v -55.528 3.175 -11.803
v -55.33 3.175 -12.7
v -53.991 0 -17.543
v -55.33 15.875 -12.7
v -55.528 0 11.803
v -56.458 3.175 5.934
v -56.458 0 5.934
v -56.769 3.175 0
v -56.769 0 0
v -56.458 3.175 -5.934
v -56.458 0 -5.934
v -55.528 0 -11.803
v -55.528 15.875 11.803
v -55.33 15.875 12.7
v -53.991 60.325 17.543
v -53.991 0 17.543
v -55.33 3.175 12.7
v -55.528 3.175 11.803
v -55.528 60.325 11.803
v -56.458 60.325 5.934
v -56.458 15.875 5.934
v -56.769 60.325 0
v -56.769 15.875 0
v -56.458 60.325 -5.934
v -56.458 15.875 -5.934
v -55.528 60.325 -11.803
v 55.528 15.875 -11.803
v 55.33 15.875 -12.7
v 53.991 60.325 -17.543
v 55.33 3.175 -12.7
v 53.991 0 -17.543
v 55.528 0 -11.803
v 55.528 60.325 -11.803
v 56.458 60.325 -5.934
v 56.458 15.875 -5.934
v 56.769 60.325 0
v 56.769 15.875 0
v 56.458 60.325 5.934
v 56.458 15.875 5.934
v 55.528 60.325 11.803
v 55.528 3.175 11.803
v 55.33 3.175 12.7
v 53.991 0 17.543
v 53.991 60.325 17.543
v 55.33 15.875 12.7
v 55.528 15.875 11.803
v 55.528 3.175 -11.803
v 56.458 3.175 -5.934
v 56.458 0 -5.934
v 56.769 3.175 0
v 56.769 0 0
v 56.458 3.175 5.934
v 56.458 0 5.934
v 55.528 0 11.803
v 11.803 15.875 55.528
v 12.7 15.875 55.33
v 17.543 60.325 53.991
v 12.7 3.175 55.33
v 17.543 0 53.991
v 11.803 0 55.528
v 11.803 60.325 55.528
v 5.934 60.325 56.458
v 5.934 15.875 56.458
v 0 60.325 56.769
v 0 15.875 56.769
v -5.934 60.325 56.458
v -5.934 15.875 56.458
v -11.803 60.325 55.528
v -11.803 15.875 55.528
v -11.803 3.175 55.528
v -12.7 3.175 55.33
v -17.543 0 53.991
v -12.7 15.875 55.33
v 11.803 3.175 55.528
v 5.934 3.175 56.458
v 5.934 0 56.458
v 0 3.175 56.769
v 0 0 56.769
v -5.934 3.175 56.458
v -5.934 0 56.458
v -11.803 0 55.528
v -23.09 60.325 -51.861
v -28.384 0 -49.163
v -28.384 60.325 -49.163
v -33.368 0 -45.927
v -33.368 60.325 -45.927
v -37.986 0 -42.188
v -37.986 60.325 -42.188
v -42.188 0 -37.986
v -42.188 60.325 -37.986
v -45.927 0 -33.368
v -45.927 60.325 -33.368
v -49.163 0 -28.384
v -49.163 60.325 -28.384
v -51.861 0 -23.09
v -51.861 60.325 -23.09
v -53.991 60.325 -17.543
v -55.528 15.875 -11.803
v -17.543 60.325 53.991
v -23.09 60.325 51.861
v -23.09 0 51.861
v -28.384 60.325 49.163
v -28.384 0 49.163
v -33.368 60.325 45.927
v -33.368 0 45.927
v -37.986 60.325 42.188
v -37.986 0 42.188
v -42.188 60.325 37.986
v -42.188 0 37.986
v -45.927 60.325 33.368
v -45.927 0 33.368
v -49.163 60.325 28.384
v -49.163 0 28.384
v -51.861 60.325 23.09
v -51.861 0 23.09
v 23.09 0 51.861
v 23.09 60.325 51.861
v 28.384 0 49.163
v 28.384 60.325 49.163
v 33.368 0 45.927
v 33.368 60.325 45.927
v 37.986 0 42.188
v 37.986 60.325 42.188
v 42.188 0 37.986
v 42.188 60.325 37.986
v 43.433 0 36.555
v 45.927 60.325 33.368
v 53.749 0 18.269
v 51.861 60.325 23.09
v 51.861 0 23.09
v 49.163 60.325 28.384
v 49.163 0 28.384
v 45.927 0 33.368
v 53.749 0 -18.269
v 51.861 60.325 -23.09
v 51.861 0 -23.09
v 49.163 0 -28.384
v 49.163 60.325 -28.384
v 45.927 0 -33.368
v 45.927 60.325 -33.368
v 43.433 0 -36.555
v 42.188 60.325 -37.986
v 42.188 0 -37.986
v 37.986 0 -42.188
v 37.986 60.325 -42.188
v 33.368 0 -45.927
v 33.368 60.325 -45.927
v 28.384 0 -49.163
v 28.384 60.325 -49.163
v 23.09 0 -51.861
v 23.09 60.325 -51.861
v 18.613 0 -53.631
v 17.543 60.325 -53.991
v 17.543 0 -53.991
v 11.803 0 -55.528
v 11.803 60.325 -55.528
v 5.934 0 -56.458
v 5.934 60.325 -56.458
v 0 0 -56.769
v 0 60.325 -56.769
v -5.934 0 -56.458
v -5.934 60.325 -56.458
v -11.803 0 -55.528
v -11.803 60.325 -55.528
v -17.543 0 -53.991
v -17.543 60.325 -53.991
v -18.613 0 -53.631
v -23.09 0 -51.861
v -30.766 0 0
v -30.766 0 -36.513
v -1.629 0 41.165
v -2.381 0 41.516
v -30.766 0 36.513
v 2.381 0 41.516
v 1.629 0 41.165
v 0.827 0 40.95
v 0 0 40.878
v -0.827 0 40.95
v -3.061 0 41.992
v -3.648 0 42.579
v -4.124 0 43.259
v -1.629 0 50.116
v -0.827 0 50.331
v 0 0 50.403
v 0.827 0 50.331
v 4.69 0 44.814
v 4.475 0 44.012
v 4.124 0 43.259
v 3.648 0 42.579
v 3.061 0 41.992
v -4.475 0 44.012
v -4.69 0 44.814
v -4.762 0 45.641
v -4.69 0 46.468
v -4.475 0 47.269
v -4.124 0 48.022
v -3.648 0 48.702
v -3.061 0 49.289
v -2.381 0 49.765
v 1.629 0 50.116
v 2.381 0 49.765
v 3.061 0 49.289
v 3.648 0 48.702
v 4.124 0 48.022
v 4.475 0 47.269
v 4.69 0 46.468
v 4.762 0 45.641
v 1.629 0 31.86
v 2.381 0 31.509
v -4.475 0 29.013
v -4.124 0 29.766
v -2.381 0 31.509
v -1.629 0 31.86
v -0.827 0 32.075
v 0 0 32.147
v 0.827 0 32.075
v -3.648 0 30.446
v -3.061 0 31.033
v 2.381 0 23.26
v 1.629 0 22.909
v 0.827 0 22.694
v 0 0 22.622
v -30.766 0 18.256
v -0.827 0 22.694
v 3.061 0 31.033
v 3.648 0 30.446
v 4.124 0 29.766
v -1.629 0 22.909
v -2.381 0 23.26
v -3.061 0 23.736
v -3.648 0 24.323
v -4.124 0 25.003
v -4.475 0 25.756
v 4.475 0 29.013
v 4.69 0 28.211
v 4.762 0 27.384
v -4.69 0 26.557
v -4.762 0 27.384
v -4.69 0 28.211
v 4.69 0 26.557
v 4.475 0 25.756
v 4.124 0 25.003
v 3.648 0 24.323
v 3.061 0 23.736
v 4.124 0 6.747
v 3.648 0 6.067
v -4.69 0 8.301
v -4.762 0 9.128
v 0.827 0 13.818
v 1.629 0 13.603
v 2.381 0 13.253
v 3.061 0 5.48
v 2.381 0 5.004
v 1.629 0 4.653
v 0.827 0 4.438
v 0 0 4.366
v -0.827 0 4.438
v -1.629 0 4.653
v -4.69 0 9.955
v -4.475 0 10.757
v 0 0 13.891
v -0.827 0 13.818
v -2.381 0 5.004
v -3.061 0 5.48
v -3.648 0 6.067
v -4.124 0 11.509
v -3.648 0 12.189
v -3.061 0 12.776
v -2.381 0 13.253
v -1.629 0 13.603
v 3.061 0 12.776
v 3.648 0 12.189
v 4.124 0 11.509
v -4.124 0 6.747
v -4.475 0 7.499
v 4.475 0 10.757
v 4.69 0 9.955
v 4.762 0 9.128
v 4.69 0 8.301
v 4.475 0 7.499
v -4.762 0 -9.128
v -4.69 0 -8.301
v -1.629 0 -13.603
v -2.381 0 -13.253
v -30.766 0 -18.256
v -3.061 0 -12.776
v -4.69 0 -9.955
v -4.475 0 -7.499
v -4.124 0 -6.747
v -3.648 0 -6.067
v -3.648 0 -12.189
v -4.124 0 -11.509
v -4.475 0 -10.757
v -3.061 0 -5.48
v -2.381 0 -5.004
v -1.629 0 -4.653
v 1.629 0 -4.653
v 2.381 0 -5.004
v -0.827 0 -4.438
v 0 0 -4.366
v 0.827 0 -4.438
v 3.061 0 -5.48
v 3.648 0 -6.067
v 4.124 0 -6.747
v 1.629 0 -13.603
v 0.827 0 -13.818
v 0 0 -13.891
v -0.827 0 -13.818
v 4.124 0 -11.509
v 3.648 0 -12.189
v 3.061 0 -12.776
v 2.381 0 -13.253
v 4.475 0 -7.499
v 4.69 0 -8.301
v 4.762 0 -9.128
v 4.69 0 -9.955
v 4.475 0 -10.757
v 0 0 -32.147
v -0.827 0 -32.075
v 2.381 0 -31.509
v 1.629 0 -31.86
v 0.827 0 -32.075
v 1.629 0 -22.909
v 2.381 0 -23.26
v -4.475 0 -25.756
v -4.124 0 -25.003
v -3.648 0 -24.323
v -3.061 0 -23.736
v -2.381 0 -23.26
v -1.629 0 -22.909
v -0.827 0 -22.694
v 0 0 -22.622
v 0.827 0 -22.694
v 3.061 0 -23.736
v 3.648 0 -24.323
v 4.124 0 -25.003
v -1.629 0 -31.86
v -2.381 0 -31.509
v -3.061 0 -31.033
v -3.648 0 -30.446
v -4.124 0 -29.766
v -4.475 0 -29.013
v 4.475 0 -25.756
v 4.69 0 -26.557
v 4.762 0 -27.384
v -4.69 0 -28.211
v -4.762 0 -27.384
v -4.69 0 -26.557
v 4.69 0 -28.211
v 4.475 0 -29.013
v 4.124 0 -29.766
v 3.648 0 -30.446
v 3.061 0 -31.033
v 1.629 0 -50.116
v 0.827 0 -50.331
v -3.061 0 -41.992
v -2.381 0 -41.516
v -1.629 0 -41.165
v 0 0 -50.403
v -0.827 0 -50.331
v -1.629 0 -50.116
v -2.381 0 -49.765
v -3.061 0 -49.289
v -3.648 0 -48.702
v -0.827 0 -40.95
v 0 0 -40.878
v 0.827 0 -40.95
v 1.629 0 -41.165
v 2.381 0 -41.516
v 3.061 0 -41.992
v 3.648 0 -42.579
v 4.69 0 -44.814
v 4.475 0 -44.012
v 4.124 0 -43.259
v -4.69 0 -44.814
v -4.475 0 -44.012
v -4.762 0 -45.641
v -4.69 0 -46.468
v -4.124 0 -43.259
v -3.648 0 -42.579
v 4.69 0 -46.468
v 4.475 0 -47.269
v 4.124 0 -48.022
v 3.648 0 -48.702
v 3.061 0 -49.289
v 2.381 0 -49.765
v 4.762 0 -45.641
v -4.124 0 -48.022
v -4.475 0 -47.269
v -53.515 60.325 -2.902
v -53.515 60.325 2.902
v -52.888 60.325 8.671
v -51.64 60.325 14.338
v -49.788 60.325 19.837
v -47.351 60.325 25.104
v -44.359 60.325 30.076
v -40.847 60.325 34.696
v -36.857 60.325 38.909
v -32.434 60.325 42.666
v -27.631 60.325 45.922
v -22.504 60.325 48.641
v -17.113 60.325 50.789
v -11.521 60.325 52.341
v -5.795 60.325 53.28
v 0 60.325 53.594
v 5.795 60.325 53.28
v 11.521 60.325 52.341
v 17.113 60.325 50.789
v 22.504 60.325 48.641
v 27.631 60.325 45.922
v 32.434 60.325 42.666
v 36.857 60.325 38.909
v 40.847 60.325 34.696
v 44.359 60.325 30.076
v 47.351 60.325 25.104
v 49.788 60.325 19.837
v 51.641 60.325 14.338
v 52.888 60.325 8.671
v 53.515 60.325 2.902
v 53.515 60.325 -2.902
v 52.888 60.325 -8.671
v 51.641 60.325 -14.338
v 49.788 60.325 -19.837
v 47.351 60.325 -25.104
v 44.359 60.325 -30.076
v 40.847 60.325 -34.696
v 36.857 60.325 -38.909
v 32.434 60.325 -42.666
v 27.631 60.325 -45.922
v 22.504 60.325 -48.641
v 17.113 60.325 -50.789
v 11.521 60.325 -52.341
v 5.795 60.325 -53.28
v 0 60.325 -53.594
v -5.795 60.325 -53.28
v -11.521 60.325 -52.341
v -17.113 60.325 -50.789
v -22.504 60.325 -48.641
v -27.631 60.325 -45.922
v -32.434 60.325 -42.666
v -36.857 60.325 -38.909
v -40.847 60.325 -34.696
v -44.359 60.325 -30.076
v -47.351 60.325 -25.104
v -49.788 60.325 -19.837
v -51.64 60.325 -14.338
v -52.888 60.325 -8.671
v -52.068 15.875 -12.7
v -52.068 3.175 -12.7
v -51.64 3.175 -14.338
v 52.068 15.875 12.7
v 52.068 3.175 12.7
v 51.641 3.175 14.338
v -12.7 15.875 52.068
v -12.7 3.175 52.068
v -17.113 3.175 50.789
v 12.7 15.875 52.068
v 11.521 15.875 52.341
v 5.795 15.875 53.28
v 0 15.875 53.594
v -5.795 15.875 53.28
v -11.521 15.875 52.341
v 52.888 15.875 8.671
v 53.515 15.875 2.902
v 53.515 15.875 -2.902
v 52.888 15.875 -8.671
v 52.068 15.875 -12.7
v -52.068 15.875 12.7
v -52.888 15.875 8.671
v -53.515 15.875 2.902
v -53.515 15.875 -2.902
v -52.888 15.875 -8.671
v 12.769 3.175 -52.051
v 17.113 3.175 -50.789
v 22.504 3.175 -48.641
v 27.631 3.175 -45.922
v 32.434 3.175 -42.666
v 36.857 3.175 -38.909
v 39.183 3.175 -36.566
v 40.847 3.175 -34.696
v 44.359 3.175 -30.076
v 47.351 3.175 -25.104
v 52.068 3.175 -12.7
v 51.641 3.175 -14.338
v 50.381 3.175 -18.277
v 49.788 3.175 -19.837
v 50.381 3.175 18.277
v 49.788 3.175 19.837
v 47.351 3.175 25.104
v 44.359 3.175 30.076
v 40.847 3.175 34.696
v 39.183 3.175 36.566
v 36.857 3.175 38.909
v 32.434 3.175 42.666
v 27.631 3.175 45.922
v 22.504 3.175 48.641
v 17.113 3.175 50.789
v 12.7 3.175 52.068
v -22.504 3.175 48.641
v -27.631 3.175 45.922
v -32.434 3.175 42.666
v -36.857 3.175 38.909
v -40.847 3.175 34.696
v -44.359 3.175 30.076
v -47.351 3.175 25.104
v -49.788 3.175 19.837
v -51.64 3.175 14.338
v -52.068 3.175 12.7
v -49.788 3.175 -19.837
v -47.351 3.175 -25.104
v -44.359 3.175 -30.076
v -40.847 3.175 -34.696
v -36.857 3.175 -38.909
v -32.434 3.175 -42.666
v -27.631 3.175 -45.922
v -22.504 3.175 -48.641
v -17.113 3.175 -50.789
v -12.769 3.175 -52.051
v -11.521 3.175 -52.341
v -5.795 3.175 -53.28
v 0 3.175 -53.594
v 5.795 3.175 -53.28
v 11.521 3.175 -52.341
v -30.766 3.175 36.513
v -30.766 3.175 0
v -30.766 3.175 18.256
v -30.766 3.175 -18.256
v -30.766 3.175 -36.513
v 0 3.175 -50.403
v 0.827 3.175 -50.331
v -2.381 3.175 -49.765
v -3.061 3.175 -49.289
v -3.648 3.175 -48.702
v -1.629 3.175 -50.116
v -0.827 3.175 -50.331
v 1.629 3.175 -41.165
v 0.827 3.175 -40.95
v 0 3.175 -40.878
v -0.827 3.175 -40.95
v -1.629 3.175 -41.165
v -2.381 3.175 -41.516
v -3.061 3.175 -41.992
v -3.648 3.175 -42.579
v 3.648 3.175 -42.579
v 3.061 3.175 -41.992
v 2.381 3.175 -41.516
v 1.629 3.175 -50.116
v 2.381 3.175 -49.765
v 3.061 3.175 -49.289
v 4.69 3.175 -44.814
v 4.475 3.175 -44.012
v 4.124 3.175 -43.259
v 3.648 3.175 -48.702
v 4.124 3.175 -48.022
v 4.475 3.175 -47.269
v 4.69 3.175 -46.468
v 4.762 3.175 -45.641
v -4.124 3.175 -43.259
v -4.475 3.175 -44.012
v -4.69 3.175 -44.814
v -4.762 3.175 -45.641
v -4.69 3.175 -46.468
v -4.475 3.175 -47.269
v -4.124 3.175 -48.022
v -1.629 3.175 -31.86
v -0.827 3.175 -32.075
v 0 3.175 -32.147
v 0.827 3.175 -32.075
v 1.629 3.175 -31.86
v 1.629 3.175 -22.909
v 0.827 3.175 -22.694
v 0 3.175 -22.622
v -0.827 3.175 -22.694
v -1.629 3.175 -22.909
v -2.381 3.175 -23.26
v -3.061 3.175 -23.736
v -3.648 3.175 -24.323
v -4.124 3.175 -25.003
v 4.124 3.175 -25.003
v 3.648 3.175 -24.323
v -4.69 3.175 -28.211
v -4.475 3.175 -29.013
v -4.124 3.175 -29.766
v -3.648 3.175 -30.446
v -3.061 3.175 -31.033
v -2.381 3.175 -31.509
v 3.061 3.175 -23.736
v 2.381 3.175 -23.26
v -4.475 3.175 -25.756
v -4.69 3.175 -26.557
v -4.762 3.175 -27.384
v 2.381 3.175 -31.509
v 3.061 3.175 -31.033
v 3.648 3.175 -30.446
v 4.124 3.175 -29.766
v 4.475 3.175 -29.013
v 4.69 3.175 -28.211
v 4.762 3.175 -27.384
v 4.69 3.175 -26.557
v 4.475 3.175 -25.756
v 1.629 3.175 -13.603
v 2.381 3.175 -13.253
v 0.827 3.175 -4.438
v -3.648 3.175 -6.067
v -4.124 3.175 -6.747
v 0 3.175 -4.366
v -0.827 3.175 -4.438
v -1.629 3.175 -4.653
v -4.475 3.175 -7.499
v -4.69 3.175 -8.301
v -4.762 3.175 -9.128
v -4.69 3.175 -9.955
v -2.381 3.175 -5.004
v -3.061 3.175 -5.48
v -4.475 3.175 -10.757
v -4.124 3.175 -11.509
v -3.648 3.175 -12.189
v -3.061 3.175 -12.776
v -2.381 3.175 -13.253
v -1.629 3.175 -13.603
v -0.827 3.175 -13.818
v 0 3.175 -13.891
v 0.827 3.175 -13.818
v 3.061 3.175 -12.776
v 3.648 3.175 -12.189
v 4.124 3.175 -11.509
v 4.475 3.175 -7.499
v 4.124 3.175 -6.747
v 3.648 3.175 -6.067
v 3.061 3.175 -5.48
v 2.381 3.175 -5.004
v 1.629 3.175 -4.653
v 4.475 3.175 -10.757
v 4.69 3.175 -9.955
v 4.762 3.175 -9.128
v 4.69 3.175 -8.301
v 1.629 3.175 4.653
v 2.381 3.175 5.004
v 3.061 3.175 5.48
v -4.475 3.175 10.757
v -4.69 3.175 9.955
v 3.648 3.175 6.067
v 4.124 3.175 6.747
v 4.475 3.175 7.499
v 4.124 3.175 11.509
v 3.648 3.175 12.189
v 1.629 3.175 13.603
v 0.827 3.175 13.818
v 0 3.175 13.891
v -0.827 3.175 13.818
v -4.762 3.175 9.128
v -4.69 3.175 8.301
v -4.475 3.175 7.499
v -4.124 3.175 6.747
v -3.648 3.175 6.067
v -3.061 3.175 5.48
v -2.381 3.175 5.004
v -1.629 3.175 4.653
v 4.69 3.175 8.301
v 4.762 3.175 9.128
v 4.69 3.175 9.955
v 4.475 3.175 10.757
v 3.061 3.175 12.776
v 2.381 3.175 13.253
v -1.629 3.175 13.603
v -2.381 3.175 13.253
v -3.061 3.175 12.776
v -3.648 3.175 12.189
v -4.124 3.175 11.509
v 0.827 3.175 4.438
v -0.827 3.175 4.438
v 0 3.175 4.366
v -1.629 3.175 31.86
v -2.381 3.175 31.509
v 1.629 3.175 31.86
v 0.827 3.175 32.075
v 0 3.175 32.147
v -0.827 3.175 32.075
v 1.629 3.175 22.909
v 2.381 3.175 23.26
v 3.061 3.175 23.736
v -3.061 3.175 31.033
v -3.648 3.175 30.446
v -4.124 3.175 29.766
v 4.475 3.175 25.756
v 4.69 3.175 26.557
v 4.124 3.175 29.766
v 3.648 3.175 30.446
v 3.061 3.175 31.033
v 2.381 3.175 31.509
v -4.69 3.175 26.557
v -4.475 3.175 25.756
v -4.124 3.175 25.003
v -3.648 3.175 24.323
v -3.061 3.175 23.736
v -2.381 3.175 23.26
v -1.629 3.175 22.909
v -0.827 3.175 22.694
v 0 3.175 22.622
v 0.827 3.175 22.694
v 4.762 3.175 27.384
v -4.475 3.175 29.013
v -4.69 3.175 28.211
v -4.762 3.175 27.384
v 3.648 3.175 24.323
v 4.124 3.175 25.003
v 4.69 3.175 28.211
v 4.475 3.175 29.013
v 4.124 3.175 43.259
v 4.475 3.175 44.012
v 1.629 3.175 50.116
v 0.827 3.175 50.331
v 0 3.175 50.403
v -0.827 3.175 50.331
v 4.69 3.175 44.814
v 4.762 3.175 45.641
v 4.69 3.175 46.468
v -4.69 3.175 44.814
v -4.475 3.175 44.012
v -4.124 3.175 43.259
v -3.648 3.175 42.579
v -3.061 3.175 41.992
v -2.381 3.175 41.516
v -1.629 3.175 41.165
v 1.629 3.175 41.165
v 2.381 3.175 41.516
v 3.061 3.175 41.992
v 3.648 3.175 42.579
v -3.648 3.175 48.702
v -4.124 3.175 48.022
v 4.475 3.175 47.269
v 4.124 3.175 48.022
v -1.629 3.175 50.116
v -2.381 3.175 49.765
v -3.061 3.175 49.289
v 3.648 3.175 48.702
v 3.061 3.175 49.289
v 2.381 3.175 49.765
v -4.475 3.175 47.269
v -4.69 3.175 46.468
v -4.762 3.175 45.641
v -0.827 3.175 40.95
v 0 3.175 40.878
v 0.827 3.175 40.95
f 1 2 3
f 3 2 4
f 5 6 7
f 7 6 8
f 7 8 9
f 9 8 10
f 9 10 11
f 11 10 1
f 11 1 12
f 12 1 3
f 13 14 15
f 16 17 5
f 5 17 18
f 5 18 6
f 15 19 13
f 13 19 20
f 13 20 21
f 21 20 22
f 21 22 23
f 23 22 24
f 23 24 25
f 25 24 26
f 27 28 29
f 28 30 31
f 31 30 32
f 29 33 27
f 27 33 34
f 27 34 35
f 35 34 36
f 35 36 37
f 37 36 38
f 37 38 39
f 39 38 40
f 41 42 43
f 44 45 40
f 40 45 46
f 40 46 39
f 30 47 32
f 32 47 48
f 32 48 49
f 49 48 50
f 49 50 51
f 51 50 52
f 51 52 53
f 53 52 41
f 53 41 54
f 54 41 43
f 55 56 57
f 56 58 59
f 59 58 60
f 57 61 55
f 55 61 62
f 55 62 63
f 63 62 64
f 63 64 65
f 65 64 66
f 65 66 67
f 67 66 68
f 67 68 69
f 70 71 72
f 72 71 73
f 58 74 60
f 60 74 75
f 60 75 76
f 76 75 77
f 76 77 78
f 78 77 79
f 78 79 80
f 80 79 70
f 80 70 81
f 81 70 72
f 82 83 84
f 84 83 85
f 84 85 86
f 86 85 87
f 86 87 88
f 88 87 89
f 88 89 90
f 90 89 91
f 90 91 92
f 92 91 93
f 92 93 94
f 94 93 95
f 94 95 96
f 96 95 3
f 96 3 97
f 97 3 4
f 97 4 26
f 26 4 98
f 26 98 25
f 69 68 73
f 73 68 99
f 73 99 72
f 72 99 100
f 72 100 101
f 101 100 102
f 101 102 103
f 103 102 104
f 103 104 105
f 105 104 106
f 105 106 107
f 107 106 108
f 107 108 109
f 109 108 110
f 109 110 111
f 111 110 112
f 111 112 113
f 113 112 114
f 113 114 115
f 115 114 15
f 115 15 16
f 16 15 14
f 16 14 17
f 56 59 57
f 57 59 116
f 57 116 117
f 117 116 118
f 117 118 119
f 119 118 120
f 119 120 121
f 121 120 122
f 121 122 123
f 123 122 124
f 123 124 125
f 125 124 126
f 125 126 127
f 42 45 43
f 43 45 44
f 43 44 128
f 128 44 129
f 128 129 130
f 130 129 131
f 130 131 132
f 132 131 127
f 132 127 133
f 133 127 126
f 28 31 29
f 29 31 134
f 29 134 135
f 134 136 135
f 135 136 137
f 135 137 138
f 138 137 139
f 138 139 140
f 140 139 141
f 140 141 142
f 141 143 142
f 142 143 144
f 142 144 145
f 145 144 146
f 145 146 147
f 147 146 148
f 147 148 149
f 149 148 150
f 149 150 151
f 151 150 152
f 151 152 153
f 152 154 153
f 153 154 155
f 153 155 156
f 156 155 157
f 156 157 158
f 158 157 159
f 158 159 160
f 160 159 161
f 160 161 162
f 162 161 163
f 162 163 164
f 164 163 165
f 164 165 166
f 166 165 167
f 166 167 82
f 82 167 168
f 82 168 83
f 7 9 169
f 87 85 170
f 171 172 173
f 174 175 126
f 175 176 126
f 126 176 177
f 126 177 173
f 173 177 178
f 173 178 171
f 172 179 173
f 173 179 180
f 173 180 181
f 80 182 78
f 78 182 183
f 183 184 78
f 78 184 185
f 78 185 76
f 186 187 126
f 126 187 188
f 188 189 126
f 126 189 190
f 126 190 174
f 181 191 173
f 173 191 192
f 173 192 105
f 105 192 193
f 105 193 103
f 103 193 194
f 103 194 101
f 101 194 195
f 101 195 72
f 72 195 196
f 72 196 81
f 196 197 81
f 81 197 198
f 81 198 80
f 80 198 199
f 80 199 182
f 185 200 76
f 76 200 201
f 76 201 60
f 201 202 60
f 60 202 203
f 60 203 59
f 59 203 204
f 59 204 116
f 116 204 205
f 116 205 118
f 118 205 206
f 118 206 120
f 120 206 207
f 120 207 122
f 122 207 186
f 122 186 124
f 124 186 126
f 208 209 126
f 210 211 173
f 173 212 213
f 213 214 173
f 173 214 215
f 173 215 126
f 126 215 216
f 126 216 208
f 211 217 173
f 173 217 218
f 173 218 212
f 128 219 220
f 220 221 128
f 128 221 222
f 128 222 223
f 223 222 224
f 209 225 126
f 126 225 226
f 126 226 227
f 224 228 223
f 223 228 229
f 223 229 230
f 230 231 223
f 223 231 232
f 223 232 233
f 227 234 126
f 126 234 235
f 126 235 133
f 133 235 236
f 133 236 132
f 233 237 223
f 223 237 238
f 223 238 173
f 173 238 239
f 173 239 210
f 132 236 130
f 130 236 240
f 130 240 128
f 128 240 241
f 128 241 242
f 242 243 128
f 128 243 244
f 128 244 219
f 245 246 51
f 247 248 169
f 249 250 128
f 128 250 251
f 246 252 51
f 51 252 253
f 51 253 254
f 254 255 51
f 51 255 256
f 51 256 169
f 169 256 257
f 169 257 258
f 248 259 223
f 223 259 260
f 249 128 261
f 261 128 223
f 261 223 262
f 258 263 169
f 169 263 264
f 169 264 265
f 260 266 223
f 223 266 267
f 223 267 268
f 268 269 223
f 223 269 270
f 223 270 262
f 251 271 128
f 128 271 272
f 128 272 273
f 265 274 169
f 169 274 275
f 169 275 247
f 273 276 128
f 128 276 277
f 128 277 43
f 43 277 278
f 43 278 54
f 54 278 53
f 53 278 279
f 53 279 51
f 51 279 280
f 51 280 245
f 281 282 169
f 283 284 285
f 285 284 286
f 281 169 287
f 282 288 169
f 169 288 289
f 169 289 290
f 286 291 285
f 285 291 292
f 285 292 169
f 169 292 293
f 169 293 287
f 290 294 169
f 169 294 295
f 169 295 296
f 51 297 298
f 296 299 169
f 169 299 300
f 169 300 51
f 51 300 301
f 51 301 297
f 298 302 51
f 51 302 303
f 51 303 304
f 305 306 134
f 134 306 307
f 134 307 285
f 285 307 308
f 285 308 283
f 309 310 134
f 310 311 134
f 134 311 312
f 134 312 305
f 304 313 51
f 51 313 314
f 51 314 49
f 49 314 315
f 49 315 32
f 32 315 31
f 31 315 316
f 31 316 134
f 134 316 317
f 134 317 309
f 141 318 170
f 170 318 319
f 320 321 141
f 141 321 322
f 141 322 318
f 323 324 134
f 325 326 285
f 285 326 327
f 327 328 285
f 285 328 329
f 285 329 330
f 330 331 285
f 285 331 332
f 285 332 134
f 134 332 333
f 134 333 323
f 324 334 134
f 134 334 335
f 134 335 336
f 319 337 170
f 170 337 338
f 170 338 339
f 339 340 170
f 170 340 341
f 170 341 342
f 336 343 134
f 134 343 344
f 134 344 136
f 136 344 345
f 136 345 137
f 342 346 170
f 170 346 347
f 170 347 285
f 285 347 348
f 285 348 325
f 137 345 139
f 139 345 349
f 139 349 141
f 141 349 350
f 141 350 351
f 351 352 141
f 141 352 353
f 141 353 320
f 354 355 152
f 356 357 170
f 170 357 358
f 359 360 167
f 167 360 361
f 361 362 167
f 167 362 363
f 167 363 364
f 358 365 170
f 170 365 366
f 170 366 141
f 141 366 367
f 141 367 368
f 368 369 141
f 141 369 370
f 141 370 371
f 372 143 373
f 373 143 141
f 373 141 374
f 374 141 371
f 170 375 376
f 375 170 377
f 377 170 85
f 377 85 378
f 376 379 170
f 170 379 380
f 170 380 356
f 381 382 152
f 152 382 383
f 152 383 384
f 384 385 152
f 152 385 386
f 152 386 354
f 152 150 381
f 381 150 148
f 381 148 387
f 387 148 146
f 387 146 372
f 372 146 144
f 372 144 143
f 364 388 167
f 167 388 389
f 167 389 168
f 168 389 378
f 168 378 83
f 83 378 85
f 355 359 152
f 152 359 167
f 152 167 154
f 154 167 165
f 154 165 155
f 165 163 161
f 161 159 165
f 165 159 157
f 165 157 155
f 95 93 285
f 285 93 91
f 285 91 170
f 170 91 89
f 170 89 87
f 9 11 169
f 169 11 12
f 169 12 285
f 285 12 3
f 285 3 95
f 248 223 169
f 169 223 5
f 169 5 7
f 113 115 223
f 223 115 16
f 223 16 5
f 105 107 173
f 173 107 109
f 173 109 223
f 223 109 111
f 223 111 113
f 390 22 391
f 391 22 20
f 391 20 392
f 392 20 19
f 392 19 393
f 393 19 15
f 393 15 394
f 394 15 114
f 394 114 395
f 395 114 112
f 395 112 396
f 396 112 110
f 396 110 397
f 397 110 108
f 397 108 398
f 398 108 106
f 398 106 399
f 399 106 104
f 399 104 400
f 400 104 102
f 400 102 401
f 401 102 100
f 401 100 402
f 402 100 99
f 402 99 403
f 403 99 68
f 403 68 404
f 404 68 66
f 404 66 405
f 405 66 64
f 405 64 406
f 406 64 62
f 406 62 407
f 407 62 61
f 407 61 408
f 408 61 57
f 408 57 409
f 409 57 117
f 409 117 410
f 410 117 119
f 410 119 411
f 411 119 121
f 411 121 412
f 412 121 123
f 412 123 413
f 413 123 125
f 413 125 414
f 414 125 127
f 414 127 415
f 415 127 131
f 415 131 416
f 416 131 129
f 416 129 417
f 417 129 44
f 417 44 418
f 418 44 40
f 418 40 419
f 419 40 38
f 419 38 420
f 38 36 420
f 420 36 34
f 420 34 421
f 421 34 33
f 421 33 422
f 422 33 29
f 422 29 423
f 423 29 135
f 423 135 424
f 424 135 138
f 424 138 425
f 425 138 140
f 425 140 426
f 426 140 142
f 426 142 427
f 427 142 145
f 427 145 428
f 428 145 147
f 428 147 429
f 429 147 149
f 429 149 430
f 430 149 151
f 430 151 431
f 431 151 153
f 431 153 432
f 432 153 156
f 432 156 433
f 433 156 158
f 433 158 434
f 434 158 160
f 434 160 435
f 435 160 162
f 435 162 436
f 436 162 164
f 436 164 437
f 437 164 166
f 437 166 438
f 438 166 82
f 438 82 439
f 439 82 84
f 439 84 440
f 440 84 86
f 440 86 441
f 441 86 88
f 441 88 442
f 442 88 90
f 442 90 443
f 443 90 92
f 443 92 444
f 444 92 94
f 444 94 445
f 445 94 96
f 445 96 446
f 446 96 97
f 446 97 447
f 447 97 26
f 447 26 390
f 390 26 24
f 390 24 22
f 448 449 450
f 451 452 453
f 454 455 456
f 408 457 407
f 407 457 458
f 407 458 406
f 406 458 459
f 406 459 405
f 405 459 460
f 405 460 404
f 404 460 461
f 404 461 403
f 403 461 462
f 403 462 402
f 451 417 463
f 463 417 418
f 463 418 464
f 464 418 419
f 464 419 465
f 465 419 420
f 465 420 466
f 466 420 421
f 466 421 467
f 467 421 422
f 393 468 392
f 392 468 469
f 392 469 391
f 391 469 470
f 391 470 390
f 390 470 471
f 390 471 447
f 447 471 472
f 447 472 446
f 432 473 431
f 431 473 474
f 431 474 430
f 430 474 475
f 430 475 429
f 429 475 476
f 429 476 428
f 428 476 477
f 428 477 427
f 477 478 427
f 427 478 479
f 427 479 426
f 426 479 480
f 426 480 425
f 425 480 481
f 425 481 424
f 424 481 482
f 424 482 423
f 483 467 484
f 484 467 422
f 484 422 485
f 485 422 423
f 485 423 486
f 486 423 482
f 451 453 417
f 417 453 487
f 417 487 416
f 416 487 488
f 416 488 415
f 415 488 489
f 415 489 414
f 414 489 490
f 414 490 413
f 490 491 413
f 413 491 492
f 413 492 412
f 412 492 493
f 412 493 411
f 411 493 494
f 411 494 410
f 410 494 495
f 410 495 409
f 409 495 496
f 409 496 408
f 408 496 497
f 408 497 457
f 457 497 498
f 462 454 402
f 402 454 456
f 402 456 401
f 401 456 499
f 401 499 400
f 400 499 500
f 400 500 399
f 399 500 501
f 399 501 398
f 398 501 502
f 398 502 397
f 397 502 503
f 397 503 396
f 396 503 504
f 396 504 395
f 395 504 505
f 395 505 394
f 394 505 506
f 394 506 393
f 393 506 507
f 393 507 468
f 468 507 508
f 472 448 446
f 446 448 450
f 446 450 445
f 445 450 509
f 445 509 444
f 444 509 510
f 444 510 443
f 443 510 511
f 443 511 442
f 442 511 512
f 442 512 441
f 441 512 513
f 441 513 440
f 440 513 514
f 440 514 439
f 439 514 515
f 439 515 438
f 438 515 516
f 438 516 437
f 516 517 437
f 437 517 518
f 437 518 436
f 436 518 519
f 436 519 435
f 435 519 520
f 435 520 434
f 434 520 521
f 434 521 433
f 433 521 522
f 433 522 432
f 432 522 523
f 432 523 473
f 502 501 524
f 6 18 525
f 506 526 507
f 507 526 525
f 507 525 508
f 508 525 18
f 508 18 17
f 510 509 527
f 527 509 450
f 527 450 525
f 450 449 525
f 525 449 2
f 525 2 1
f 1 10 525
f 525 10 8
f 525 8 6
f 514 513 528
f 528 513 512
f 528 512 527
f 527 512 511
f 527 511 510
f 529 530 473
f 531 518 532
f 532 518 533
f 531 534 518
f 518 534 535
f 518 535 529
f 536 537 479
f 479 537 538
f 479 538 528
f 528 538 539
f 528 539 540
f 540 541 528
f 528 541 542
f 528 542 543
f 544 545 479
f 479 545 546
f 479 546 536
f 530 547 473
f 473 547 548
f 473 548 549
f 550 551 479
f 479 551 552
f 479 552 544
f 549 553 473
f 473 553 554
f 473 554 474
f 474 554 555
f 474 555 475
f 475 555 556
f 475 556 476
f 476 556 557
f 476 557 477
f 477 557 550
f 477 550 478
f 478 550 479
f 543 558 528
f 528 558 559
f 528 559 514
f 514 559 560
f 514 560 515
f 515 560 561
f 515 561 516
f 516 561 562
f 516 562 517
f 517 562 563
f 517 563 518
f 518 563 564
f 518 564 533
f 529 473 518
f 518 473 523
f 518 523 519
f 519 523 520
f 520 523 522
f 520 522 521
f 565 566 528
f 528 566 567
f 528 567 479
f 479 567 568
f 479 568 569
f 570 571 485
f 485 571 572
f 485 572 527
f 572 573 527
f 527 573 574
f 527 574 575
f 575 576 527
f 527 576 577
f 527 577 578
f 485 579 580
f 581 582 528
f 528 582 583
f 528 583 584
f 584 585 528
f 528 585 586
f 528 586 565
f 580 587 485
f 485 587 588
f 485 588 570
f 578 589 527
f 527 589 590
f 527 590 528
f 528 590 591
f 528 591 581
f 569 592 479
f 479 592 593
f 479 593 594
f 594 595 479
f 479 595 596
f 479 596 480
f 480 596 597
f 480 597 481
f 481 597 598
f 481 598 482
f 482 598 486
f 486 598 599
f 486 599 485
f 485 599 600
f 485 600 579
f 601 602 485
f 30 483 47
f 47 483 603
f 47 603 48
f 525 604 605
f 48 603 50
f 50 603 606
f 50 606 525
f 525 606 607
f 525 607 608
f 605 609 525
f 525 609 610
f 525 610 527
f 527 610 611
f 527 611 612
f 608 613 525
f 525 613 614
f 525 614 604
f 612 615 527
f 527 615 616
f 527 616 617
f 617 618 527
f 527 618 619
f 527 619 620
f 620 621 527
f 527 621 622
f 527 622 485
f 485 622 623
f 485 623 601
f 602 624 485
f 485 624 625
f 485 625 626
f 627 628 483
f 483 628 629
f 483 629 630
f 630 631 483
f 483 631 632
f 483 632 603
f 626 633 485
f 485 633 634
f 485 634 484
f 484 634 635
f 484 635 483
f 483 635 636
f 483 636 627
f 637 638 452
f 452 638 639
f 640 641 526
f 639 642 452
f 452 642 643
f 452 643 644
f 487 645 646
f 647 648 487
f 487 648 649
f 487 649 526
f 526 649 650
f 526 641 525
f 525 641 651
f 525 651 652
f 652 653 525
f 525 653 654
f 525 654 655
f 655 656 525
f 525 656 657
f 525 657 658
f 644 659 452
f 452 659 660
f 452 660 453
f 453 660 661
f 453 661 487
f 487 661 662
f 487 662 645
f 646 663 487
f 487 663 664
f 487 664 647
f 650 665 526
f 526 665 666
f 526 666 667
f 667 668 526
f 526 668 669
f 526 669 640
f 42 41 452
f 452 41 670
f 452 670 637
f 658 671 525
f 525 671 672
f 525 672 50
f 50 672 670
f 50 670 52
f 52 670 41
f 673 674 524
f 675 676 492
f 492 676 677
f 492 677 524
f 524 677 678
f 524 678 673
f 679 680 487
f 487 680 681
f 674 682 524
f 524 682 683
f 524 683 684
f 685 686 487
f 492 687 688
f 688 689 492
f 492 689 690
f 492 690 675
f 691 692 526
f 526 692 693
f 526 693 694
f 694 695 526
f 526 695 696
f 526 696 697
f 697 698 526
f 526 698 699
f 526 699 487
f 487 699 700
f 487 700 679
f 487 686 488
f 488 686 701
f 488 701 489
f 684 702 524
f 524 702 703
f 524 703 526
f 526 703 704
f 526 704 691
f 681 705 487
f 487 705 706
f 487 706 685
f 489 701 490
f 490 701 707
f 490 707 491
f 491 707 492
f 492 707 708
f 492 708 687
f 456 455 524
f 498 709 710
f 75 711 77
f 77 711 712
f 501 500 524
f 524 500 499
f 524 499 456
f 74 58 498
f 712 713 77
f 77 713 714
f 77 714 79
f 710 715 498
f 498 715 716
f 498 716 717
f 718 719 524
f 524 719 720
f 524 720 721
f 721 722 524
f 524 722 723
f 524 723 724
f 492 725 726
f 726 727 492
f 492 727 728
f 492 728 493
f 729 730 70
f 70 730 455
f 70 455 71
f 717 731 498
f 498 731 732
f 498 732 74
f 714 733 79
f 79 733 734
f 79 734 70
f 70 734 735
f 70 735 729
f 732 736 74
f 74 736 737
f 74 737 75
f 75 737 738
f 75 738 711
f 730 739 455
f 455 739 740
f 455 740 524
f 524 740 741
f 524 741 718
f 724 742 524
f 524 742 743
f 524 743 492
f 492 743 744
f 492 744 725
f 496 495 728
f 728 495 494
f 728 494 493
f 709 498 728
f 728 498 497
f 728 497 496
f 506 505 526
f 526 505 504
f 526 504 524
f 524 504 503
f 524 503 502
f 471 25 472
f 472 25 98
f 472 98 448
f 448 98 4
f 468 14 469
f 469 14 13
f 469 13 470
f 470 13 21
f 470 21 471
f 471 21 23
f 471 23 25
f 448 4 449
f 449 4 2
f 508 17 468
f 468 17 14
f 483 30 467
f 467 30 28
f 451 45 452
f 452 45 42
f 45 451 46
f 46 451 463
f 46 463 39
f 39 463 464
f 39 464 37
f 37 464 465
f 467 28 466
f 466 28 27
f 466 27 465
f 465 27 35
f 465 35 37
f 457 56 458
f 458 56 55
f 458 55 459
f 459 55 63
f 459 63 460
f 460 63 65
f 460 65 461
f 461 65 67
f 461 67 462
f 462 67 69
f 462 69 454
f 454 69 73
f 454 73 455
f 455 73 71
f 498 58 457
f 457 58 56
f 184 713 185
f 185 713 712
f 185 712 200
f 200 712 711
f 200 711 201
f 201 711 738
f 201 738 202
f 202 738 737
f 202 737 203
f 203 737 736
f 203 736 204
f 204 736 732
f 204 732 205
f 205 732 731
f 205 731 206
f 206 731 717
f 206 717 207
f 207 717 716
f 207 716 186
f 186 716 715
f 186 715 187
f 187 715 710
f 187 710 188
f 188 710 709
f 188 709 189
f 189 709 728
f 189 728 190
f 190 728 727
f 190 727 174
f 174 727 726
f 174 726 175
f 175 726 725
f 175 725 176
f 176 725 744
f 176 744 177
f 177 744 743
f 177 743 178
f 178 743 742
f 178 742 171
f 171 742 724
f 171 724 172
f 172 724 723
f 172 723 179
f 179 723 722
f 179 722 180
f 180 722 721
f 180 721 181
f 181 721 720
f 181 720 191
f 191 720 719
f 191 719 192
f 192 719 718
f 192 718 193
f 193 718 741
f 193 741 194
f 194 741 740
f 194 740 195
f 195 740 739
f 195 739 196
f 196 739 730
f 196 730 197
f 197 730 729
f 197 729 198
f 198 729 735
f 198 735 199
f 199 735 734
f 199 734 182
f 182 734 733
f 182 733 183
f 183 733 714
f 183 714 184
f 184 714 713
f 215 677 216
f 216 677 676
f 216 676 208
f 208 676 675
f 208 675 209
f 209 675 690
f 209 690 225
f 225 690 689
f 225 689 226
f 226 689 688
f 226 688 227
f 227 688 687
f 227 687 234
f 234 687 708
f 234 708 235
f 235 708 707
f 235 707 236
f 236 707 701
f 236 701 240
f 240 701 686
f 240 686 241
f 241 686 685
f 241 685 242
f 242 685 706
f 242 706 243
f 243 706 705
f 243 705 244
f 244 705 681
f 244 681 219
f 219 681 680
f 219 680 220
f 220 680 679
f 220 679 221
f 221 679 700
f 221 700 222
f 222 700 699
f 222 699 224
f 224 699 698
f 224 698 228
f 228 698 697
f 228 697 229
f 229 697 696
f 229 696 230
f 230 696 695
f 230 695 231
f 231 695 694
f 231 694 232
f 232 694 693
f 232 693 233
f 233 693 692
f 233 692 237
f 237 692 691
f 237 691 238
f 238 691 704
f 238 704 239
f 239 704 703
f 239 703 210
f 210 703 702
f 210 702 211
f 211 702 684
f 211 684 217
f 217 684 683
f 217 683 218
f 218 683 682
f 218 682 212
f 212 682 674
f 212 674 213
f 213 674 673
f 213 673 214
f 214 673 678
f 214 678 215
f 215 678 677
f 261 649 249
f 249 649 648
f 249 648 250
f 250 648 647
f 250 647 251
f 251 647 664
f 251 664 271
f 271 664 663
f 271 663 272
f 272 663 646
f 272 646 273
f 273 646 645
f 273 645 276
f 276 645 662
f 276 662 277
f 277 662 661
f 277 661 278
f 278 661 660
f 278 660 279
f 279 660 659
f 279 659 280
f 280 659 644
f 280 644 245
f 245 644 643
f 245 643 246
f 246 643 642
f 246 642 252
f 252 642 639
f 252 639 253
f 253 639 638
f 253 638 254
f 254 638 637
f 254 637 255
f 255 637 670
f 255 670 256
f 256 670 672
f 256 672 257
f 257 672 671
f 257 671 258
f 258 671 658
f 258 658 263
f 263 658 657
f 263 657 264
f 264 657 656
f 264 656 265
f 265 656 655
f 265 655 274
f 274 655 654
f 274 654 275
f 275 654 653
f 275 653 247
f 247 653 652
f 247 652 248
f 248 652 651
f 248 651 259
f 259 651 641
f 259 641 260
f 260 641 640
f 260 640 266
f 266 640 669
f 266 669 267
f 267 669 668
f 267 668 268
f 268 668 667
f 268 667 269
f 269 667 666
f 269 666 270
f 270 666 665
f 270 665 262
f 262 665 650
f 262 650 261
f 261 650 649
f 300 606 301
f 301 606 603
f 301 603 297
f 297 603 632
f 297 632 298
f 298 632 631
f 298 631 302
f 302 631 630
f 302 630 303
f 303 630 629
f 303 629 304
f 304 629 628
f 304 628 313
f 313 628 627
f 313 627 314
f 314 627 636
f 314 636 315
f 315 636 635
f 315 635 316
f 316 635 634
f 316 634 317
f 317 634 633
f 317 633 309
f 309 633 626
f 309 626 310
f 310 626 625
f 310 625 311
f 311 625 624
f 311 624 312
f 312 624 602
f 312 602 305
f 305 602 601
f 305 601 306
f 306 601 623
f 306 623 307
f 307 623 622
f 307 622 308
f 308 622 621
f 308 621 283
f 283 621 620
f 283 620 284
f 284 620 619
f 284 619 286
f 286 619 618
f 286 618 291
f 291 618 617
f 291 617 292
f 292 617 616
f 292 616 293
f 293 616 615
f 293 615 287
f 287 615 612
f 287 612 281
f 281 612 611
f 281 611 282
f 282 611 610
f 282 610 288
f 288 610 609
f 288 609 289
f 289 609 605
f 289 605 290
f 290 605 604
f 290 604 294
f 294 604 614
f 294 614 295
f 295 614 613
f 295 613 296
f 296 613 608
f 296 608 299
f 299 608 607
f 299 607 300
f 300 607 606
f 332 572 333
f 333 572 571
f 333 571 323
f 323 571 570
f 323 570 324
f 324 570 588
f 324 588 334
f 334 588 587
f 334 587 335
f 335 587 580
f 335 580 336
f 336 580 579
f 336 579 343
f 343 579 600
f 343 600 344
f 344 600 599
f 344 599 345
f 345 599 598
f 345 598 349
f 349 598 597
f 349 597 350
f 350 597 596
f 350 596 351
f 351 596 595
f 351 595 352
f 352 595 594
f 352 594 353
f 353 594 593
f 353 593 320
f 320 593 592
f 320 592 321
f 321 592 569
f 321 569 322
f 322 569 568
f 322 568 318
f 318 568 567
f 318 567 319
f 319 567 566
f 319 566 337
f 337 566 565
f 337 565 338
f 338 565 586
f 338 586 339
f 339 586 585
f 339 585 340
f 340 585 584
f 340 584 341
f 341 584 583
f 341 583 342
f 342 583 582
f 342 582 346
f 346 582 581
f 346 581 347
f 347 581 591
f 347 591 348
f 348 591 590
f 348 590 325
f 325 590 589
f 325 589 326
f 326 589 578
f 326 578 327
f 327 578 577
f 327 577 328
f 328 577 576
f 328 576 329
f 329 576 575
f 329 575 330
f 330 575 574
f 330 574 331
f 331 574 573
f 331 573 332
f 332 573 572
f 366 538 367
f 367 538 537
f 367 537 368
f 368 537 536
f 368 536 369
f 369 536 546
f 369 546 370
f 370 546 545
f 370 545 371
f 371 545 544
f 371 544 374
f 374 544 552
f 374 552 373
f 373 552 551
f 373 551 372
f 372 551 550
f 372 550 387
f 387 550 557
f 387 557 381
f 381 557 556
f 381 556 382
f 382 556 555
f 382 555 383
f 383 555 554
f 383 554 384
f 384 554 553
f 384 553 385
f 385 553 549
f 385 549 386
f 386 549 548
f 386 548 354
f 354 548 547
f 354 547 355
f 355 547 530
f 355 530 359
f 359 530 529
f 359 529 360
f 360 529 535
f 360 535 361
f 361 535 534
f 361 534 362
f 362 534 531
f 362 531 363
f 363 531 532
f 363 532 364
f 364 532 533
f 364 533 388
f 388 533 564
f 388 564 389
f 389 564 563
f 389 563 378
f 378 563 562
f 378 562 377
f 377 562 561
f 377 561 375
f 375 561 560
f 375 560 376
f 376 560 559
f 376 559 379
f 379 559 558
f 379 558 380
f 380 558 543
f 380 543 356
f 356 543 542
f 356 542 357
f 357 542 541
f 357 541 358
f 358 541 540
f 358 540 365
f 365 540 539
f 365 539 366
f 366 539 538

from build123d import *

# Parameters (mm, degrees)
SKETCH1_R           = 56.769
BOSS_EXTRUDE1_DEPTH = 3.175
SKETCH2_R           = 56.769
SKETCH2_R_2         = 53.594
BOSS_EXTRUDE2_DEPTH = 57.15
SKETCH3_W           = 25.4
SKETCH3_H           = 12.7
CUT_EXTRUDE1_DEPTH  = 101.421832024
CIRPATTERN1_COUNT   = 3
CIRPATTERN1_ANGLE   = 180
SKETCH4_R           = 4.7625
CUT_EXTRUDE2_DEPTH  = 99.547253752


with BuildPart() as part:
    # Sketch1 → Boss-Extrude1 (new body)
    with BuildSketch(Plane(origin=(0, 0, 0), x_dir=(1, 0, 0), z_dir=(0, 1, 0))):
        with Locations(Location((0, 0, 0), (0, 0, 270))):
            Circle(SKETCH1_R)
    extrude(amount=BOSS_EXTRUDE1_DEPTH)

    # Sketch2 → Boss-Extrude2 (add)
    with BuildSketch(Plane(origin=(0, 3.175, 0), x_dir=(1, 0, 0), z_dir=(0, 1, 0))):
        with Locations(Location((0, 0, 0), (0, 0, 270))):
            Circle(SKETCH2_R)
        with Locations(Location((0, 0, 0), (0, 0, 270))):
            Circle(SKETCH2_R_2, mode=Mode.SUBTRACT)
    extrude(amount=BOSS_EXTRUDE2_DEPTH)

    # Sketch3 → Cut-Extrude1 (cut, through all)
    with BuildSketch(Plane(origin=(0, 0, 0), x_dir=(0, 0, -1), z_dir=(1, 0, 0))):
        with Locations((0, 9.525)):
            Rectangle(SKETCH3_W, SKETCH3_H)
    cut_extrude1 = extrude(amount=-CUT_EXTRUDE1_DEPTH, mode=Mode.SUBTRACT)

    # CirPattern1: Cut-Extrude1 ×3 about axis
    cirpattern1_axis = Axis((0, 0, 0), (0, 1, 0))
    for i in range(1, CIRPATTERN1_COUNT):
        add(cut_extrude1.rotate(cirpattern1_axis, i * CIRPATTERN1_ANGLE / (CIRPATTERN1_COUNT - 1)), mode=Mode.SUBTRACT)

    # Sketch4 → Cut-Extrude2 (cut, through all)
    with BuildSketch(Plane(origin=(0, 3.175, 0), x_dir=(1, 0, 0), z_dir=(0, 1, 0))):
        with Locations(Location((0, 45.640625, 0), (0, 0, 270))):
            Circle(SKETCH4_R)
        with Locations(Location((0, 27.384375, 0), (0, 0, 270))):
            Circle(SKETCH4_R)
        with Locations(Location((0, 9.128125, 0), (0, 0, 270))):
            Circle(SKETCH4_R)
        with Locations(Location((0, -9.128125, 0), (0, 0, 270))):
            Circle(SKETCH4_R)
        with Locations(Location((0, -27.384375, 0), (0, 0, 270))):
            Circle(SKETCH4_R)
        with Locations(Location((0, -45.640625, 0), (0, 0, 270))):
            Circle(SKETCH4_R)
    extrude(amount=-CUT_EXTRUDE2_DEPTH, mode=Mode.SUBTRACT)


solid = part.part
